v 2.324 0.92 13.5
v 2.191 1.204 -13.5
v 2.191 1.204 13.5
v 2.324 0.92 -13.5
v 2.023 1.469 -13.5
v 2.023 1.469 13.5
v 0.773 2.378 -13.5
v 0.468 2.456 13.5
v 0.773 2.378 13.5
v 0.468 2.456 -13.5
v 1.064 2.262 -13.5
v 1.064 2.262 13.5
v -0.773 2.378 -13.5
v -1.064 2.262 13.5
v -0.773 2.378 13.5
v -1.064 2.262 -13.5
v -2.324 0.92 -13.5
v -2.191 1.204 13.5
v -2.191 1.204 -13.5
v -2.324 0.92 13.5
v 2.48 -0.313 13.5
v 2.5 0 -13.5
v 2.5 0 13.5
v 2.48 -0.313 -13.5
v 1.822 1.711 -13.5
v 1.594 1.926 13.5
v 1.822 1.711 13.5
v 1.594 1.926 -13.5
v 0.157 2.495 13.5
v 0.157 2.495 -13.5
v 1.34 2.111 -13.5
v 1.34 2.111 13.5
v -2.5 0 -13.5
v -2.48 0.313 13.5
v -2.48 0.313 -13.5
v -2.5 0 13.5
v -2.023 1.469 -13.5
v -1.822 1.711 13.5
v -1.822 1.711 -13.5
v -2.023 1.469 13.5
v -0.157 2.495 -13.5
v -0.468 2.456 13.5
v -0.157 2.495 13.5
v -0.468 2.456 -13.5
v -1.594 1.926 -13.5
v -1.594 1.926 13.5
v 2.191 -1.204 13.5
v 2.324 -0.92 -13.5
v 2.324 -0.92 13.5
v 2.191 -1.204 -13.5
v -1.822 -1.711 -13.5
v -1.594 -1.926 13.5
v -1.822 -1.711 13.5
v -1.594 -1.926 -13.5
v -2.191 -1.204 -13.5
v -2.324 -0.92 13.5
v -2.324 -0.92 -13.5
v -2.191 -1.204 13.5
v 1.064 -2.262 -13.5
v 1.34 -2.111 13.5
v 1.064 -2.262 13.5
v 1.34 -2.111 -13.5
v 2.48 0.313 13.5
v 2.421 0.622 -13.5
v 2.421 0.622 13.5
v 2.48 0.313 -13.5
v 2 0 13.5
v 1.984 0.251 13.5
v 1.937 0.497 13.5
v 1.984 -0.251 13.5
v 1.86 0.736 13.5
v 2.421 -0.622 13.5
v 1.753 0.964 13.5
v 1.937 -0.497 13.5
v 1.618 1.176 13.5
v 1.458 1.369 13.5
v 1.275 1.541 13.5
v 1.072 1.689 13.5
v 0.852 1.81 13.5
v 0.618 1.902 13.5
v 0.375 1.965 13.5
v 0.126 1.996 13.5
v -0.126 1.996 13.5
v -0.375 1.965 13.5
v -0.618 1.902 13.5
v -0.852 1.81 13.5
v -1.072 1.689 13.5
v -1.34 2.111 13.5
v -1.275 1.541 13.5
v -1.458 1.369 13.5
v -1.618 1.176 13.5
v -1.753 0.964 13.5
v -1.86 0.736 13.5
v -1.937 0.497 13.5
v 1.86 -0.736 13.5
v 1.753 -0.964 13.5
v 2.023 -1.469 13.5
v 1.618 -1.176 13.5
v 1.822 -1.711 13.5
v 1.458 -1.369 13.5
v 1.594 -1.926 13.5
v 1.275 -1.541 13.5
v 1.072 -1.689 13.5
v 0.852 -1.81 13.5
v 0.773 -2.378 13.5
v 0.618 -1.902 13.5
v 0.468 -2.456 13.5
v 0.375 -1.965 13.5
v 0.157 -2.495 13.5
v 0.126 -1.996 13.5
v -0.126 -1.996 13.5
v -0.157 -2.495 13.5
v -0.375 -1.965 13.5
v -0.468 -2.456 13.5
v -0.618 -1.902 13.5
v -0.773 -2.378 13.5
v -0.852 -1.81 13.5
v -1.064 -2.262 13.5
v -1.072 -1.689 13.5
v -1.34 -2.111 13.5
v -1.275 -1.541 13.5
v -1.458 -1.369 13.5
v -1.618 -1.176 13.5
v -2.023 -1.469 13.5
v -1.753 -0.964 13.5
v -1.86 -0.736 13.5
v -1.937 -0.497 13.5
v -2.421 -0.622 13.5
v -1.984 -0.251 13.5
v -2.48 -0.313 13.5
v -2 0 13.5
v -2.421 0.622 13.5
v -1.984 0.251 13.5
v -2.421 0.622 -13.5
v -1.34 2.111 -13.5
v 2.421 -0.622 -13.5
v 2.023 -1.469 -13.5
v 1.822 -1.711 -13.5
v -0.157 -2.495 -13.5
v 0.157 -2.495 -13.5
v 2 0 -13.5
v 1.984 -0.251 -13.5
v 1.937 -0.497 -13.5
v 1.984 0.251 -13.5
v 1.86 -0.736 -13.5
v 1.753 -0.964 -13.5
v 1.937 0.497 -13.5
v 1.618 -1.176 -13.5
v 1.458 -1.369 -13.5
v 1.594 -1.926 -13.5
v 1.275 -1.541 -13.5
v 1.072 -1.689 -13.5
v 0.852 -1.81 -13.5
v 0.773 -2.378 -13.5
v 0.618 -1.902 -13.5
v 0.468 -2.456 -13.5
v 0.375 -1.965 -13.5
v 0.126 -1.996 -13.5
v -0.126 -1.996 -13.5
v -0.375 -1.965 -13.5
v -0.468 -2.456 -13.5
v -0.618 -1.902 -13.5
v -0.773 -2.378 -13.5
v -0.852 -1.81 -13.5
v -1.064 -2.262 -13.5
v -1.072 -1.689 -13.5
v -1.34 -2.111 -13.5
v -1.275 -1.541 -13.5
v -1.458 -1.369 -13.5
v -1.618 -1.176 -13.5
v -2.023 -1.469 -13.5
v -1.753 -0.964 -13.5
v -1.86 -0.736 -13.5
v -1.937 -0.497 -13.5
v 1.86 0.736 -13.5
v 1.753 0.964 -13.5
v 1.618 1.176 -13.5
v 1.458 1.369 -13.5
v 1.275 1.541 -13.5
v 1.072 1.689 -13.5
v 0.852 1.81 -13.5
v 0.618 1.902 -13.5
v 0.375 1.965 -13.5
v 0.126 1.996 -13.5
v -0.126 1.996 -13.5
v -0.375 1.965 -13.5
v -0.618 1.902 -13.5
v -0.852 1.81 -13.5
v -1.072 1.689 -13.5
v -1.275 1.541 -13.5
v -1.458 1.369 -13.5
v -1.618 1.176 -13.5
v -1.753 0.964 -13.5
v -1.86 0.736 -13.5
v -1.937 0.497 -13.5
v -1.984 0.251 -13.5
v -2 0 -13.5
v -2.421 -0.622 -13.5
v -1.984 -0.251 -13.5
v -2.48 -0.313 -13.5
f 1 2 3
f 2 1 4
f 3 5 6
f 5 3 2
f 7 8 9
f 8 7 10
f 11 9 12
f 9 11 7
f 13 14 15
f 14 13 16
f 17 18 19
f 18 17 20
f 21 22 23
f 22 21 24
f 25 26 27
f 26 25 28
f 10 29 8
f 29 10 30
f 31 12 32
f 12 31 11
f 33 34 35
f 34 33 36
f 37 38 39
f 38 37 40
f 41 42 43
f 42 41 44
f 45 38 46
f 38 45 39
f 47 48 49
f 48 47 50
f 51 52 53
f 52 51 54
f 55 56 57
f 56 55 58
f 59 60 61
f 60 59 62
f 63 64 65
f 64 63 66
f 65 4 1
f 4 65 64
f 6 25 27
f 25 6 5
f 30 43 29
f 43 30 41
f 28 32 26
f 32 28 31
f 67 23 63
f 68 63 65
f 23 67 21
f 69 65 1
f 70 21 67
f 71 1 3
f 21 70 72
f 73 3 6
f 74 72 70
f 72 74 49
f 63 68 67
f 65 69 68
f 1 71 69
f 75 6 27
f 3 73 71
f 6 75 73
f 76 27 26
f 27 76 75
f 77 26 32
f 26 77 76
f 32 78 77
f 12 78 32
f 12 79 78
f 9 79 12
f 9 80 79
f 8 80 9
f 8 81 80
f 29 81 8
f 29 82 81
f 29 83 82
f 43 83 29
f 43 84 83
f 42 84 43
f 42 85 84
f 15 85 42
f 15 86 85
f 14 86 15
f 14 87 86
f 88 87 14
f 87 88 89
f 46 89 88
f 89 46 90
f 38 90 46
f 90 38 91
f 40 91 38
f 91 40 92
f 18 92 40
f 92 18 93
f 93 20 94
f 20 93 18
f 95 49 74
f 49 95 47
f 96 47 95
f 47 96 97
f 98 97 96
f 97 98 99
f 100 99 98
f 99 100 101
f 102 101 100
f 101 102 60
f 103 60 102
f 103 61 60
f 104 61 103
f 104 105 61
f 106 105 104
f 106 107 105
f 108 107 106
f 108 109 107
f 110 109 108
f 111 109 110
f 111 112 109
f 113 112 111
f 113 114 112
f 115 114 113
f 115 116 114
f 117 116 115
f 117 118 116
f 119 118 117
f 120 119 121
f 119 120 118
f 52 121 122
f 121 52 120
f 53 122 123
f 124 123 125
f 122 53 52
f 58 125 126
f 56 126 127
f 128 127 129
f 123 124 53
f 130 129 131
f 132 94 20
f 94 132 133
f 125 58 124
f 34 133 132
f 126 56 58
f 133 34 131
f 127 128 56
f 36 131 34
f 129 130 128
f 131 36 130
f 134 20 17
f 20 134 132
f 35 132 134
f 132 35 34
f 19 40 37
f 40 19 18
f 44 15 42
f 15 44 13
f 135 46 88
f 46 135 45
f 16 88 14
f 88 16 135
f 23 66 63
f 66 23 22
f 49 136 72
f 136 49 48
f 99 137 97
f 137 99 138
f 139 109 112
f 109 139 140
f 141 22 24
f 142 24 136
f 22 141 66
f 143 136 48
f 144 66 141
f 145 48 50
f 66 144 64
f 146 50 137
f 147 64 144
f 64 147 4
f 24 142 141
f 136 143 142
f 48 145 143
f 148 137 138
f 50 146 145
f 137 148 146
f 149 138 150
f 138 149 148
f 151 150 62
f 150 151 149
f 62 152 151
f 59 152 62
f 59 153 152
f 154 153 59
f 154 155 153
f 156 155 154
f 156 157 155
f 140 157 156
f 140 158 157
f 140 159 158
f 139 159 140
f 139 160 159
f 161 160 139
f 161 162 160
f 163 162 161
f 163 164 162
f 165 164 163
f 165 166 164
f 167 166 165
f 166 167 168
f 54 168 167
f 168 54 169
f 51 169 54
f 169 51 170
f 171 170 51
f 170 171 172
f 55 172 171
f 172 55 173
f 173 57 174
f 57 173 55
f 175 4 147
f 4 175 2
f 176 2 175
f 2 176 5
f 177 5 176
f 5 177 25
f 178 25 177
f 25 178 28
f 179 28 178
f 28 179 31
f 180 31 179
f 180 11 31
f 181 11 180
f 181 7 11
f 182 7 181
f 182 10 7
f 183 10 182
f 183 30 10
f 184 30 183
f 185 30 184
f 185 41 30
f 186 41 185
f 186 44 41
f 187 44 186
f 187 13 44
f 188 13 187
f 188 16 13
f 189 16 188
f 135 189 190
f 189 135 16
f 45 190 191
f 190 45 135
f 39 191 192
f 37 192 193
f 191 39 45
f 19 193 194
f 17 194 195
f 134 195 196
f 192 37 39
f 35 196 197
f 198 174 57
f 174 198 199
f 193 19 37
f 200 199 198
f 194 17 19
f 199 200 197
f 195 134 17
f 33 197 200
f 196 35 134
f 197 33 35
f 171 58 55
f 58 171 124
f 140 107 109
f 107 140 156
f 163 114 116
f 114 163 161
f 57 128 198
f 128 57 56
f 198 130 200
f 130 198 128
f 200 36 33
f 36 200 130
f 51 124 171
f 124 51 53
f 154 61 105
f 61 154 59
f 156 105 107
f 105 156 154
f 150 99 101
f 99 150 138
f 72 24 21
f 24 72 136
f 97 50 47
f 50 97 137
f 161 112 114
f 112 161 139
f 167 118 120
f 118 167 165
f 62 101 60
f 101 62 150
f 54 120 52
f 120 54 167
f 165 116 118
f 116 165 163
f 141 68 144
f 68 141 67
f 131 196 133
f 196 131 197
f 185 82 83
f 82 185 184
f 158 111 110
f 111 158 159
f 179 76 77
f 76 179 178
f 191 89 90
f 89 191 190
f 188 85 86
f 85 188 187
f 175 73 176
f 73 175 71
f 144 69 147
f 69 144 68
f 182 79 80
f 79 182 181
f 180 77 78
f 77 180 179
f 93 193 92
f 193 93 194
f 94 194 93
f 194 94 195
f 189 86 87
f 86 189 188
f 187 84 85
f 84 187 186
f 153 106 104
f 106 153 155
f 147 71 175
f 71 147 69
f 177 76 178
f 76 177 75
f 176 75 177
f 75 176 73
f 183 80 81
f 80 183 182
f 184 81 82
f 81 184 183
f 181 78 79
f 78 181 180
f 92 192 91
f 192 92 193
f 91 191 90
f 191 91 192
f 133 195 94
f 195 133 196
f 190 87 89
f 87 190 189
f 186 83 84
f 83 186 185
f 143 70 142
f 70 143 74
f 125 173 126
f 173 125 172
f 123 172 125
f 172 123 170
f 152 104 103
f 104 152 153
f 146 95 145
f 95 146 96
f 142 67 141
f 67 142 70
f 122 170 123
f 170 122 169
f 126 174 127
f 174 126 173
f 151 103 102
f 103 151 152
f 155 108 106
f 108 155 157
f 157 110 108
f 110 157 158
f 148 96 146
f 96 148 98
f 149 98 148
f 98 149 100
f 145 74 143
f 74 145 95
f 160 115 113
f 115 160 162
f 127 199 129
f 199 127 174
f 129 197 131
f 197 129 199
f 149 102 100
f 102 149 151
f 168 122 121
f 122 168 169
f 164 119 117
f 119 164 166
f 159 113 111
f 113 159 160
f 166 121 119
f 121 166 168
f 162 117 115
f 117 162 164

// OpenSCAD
$fn = 50;


difference() {
	union() {
		translate(v = [0, 0, -13.5000000000]) {
			cylinder(h = 27, r = 2.5000000000);
		}
	}
	union() {
		translate(v = [0, 0, -100.0000000000]) {
			cylinder(h = 200, r = 2);
		}
	}
}
